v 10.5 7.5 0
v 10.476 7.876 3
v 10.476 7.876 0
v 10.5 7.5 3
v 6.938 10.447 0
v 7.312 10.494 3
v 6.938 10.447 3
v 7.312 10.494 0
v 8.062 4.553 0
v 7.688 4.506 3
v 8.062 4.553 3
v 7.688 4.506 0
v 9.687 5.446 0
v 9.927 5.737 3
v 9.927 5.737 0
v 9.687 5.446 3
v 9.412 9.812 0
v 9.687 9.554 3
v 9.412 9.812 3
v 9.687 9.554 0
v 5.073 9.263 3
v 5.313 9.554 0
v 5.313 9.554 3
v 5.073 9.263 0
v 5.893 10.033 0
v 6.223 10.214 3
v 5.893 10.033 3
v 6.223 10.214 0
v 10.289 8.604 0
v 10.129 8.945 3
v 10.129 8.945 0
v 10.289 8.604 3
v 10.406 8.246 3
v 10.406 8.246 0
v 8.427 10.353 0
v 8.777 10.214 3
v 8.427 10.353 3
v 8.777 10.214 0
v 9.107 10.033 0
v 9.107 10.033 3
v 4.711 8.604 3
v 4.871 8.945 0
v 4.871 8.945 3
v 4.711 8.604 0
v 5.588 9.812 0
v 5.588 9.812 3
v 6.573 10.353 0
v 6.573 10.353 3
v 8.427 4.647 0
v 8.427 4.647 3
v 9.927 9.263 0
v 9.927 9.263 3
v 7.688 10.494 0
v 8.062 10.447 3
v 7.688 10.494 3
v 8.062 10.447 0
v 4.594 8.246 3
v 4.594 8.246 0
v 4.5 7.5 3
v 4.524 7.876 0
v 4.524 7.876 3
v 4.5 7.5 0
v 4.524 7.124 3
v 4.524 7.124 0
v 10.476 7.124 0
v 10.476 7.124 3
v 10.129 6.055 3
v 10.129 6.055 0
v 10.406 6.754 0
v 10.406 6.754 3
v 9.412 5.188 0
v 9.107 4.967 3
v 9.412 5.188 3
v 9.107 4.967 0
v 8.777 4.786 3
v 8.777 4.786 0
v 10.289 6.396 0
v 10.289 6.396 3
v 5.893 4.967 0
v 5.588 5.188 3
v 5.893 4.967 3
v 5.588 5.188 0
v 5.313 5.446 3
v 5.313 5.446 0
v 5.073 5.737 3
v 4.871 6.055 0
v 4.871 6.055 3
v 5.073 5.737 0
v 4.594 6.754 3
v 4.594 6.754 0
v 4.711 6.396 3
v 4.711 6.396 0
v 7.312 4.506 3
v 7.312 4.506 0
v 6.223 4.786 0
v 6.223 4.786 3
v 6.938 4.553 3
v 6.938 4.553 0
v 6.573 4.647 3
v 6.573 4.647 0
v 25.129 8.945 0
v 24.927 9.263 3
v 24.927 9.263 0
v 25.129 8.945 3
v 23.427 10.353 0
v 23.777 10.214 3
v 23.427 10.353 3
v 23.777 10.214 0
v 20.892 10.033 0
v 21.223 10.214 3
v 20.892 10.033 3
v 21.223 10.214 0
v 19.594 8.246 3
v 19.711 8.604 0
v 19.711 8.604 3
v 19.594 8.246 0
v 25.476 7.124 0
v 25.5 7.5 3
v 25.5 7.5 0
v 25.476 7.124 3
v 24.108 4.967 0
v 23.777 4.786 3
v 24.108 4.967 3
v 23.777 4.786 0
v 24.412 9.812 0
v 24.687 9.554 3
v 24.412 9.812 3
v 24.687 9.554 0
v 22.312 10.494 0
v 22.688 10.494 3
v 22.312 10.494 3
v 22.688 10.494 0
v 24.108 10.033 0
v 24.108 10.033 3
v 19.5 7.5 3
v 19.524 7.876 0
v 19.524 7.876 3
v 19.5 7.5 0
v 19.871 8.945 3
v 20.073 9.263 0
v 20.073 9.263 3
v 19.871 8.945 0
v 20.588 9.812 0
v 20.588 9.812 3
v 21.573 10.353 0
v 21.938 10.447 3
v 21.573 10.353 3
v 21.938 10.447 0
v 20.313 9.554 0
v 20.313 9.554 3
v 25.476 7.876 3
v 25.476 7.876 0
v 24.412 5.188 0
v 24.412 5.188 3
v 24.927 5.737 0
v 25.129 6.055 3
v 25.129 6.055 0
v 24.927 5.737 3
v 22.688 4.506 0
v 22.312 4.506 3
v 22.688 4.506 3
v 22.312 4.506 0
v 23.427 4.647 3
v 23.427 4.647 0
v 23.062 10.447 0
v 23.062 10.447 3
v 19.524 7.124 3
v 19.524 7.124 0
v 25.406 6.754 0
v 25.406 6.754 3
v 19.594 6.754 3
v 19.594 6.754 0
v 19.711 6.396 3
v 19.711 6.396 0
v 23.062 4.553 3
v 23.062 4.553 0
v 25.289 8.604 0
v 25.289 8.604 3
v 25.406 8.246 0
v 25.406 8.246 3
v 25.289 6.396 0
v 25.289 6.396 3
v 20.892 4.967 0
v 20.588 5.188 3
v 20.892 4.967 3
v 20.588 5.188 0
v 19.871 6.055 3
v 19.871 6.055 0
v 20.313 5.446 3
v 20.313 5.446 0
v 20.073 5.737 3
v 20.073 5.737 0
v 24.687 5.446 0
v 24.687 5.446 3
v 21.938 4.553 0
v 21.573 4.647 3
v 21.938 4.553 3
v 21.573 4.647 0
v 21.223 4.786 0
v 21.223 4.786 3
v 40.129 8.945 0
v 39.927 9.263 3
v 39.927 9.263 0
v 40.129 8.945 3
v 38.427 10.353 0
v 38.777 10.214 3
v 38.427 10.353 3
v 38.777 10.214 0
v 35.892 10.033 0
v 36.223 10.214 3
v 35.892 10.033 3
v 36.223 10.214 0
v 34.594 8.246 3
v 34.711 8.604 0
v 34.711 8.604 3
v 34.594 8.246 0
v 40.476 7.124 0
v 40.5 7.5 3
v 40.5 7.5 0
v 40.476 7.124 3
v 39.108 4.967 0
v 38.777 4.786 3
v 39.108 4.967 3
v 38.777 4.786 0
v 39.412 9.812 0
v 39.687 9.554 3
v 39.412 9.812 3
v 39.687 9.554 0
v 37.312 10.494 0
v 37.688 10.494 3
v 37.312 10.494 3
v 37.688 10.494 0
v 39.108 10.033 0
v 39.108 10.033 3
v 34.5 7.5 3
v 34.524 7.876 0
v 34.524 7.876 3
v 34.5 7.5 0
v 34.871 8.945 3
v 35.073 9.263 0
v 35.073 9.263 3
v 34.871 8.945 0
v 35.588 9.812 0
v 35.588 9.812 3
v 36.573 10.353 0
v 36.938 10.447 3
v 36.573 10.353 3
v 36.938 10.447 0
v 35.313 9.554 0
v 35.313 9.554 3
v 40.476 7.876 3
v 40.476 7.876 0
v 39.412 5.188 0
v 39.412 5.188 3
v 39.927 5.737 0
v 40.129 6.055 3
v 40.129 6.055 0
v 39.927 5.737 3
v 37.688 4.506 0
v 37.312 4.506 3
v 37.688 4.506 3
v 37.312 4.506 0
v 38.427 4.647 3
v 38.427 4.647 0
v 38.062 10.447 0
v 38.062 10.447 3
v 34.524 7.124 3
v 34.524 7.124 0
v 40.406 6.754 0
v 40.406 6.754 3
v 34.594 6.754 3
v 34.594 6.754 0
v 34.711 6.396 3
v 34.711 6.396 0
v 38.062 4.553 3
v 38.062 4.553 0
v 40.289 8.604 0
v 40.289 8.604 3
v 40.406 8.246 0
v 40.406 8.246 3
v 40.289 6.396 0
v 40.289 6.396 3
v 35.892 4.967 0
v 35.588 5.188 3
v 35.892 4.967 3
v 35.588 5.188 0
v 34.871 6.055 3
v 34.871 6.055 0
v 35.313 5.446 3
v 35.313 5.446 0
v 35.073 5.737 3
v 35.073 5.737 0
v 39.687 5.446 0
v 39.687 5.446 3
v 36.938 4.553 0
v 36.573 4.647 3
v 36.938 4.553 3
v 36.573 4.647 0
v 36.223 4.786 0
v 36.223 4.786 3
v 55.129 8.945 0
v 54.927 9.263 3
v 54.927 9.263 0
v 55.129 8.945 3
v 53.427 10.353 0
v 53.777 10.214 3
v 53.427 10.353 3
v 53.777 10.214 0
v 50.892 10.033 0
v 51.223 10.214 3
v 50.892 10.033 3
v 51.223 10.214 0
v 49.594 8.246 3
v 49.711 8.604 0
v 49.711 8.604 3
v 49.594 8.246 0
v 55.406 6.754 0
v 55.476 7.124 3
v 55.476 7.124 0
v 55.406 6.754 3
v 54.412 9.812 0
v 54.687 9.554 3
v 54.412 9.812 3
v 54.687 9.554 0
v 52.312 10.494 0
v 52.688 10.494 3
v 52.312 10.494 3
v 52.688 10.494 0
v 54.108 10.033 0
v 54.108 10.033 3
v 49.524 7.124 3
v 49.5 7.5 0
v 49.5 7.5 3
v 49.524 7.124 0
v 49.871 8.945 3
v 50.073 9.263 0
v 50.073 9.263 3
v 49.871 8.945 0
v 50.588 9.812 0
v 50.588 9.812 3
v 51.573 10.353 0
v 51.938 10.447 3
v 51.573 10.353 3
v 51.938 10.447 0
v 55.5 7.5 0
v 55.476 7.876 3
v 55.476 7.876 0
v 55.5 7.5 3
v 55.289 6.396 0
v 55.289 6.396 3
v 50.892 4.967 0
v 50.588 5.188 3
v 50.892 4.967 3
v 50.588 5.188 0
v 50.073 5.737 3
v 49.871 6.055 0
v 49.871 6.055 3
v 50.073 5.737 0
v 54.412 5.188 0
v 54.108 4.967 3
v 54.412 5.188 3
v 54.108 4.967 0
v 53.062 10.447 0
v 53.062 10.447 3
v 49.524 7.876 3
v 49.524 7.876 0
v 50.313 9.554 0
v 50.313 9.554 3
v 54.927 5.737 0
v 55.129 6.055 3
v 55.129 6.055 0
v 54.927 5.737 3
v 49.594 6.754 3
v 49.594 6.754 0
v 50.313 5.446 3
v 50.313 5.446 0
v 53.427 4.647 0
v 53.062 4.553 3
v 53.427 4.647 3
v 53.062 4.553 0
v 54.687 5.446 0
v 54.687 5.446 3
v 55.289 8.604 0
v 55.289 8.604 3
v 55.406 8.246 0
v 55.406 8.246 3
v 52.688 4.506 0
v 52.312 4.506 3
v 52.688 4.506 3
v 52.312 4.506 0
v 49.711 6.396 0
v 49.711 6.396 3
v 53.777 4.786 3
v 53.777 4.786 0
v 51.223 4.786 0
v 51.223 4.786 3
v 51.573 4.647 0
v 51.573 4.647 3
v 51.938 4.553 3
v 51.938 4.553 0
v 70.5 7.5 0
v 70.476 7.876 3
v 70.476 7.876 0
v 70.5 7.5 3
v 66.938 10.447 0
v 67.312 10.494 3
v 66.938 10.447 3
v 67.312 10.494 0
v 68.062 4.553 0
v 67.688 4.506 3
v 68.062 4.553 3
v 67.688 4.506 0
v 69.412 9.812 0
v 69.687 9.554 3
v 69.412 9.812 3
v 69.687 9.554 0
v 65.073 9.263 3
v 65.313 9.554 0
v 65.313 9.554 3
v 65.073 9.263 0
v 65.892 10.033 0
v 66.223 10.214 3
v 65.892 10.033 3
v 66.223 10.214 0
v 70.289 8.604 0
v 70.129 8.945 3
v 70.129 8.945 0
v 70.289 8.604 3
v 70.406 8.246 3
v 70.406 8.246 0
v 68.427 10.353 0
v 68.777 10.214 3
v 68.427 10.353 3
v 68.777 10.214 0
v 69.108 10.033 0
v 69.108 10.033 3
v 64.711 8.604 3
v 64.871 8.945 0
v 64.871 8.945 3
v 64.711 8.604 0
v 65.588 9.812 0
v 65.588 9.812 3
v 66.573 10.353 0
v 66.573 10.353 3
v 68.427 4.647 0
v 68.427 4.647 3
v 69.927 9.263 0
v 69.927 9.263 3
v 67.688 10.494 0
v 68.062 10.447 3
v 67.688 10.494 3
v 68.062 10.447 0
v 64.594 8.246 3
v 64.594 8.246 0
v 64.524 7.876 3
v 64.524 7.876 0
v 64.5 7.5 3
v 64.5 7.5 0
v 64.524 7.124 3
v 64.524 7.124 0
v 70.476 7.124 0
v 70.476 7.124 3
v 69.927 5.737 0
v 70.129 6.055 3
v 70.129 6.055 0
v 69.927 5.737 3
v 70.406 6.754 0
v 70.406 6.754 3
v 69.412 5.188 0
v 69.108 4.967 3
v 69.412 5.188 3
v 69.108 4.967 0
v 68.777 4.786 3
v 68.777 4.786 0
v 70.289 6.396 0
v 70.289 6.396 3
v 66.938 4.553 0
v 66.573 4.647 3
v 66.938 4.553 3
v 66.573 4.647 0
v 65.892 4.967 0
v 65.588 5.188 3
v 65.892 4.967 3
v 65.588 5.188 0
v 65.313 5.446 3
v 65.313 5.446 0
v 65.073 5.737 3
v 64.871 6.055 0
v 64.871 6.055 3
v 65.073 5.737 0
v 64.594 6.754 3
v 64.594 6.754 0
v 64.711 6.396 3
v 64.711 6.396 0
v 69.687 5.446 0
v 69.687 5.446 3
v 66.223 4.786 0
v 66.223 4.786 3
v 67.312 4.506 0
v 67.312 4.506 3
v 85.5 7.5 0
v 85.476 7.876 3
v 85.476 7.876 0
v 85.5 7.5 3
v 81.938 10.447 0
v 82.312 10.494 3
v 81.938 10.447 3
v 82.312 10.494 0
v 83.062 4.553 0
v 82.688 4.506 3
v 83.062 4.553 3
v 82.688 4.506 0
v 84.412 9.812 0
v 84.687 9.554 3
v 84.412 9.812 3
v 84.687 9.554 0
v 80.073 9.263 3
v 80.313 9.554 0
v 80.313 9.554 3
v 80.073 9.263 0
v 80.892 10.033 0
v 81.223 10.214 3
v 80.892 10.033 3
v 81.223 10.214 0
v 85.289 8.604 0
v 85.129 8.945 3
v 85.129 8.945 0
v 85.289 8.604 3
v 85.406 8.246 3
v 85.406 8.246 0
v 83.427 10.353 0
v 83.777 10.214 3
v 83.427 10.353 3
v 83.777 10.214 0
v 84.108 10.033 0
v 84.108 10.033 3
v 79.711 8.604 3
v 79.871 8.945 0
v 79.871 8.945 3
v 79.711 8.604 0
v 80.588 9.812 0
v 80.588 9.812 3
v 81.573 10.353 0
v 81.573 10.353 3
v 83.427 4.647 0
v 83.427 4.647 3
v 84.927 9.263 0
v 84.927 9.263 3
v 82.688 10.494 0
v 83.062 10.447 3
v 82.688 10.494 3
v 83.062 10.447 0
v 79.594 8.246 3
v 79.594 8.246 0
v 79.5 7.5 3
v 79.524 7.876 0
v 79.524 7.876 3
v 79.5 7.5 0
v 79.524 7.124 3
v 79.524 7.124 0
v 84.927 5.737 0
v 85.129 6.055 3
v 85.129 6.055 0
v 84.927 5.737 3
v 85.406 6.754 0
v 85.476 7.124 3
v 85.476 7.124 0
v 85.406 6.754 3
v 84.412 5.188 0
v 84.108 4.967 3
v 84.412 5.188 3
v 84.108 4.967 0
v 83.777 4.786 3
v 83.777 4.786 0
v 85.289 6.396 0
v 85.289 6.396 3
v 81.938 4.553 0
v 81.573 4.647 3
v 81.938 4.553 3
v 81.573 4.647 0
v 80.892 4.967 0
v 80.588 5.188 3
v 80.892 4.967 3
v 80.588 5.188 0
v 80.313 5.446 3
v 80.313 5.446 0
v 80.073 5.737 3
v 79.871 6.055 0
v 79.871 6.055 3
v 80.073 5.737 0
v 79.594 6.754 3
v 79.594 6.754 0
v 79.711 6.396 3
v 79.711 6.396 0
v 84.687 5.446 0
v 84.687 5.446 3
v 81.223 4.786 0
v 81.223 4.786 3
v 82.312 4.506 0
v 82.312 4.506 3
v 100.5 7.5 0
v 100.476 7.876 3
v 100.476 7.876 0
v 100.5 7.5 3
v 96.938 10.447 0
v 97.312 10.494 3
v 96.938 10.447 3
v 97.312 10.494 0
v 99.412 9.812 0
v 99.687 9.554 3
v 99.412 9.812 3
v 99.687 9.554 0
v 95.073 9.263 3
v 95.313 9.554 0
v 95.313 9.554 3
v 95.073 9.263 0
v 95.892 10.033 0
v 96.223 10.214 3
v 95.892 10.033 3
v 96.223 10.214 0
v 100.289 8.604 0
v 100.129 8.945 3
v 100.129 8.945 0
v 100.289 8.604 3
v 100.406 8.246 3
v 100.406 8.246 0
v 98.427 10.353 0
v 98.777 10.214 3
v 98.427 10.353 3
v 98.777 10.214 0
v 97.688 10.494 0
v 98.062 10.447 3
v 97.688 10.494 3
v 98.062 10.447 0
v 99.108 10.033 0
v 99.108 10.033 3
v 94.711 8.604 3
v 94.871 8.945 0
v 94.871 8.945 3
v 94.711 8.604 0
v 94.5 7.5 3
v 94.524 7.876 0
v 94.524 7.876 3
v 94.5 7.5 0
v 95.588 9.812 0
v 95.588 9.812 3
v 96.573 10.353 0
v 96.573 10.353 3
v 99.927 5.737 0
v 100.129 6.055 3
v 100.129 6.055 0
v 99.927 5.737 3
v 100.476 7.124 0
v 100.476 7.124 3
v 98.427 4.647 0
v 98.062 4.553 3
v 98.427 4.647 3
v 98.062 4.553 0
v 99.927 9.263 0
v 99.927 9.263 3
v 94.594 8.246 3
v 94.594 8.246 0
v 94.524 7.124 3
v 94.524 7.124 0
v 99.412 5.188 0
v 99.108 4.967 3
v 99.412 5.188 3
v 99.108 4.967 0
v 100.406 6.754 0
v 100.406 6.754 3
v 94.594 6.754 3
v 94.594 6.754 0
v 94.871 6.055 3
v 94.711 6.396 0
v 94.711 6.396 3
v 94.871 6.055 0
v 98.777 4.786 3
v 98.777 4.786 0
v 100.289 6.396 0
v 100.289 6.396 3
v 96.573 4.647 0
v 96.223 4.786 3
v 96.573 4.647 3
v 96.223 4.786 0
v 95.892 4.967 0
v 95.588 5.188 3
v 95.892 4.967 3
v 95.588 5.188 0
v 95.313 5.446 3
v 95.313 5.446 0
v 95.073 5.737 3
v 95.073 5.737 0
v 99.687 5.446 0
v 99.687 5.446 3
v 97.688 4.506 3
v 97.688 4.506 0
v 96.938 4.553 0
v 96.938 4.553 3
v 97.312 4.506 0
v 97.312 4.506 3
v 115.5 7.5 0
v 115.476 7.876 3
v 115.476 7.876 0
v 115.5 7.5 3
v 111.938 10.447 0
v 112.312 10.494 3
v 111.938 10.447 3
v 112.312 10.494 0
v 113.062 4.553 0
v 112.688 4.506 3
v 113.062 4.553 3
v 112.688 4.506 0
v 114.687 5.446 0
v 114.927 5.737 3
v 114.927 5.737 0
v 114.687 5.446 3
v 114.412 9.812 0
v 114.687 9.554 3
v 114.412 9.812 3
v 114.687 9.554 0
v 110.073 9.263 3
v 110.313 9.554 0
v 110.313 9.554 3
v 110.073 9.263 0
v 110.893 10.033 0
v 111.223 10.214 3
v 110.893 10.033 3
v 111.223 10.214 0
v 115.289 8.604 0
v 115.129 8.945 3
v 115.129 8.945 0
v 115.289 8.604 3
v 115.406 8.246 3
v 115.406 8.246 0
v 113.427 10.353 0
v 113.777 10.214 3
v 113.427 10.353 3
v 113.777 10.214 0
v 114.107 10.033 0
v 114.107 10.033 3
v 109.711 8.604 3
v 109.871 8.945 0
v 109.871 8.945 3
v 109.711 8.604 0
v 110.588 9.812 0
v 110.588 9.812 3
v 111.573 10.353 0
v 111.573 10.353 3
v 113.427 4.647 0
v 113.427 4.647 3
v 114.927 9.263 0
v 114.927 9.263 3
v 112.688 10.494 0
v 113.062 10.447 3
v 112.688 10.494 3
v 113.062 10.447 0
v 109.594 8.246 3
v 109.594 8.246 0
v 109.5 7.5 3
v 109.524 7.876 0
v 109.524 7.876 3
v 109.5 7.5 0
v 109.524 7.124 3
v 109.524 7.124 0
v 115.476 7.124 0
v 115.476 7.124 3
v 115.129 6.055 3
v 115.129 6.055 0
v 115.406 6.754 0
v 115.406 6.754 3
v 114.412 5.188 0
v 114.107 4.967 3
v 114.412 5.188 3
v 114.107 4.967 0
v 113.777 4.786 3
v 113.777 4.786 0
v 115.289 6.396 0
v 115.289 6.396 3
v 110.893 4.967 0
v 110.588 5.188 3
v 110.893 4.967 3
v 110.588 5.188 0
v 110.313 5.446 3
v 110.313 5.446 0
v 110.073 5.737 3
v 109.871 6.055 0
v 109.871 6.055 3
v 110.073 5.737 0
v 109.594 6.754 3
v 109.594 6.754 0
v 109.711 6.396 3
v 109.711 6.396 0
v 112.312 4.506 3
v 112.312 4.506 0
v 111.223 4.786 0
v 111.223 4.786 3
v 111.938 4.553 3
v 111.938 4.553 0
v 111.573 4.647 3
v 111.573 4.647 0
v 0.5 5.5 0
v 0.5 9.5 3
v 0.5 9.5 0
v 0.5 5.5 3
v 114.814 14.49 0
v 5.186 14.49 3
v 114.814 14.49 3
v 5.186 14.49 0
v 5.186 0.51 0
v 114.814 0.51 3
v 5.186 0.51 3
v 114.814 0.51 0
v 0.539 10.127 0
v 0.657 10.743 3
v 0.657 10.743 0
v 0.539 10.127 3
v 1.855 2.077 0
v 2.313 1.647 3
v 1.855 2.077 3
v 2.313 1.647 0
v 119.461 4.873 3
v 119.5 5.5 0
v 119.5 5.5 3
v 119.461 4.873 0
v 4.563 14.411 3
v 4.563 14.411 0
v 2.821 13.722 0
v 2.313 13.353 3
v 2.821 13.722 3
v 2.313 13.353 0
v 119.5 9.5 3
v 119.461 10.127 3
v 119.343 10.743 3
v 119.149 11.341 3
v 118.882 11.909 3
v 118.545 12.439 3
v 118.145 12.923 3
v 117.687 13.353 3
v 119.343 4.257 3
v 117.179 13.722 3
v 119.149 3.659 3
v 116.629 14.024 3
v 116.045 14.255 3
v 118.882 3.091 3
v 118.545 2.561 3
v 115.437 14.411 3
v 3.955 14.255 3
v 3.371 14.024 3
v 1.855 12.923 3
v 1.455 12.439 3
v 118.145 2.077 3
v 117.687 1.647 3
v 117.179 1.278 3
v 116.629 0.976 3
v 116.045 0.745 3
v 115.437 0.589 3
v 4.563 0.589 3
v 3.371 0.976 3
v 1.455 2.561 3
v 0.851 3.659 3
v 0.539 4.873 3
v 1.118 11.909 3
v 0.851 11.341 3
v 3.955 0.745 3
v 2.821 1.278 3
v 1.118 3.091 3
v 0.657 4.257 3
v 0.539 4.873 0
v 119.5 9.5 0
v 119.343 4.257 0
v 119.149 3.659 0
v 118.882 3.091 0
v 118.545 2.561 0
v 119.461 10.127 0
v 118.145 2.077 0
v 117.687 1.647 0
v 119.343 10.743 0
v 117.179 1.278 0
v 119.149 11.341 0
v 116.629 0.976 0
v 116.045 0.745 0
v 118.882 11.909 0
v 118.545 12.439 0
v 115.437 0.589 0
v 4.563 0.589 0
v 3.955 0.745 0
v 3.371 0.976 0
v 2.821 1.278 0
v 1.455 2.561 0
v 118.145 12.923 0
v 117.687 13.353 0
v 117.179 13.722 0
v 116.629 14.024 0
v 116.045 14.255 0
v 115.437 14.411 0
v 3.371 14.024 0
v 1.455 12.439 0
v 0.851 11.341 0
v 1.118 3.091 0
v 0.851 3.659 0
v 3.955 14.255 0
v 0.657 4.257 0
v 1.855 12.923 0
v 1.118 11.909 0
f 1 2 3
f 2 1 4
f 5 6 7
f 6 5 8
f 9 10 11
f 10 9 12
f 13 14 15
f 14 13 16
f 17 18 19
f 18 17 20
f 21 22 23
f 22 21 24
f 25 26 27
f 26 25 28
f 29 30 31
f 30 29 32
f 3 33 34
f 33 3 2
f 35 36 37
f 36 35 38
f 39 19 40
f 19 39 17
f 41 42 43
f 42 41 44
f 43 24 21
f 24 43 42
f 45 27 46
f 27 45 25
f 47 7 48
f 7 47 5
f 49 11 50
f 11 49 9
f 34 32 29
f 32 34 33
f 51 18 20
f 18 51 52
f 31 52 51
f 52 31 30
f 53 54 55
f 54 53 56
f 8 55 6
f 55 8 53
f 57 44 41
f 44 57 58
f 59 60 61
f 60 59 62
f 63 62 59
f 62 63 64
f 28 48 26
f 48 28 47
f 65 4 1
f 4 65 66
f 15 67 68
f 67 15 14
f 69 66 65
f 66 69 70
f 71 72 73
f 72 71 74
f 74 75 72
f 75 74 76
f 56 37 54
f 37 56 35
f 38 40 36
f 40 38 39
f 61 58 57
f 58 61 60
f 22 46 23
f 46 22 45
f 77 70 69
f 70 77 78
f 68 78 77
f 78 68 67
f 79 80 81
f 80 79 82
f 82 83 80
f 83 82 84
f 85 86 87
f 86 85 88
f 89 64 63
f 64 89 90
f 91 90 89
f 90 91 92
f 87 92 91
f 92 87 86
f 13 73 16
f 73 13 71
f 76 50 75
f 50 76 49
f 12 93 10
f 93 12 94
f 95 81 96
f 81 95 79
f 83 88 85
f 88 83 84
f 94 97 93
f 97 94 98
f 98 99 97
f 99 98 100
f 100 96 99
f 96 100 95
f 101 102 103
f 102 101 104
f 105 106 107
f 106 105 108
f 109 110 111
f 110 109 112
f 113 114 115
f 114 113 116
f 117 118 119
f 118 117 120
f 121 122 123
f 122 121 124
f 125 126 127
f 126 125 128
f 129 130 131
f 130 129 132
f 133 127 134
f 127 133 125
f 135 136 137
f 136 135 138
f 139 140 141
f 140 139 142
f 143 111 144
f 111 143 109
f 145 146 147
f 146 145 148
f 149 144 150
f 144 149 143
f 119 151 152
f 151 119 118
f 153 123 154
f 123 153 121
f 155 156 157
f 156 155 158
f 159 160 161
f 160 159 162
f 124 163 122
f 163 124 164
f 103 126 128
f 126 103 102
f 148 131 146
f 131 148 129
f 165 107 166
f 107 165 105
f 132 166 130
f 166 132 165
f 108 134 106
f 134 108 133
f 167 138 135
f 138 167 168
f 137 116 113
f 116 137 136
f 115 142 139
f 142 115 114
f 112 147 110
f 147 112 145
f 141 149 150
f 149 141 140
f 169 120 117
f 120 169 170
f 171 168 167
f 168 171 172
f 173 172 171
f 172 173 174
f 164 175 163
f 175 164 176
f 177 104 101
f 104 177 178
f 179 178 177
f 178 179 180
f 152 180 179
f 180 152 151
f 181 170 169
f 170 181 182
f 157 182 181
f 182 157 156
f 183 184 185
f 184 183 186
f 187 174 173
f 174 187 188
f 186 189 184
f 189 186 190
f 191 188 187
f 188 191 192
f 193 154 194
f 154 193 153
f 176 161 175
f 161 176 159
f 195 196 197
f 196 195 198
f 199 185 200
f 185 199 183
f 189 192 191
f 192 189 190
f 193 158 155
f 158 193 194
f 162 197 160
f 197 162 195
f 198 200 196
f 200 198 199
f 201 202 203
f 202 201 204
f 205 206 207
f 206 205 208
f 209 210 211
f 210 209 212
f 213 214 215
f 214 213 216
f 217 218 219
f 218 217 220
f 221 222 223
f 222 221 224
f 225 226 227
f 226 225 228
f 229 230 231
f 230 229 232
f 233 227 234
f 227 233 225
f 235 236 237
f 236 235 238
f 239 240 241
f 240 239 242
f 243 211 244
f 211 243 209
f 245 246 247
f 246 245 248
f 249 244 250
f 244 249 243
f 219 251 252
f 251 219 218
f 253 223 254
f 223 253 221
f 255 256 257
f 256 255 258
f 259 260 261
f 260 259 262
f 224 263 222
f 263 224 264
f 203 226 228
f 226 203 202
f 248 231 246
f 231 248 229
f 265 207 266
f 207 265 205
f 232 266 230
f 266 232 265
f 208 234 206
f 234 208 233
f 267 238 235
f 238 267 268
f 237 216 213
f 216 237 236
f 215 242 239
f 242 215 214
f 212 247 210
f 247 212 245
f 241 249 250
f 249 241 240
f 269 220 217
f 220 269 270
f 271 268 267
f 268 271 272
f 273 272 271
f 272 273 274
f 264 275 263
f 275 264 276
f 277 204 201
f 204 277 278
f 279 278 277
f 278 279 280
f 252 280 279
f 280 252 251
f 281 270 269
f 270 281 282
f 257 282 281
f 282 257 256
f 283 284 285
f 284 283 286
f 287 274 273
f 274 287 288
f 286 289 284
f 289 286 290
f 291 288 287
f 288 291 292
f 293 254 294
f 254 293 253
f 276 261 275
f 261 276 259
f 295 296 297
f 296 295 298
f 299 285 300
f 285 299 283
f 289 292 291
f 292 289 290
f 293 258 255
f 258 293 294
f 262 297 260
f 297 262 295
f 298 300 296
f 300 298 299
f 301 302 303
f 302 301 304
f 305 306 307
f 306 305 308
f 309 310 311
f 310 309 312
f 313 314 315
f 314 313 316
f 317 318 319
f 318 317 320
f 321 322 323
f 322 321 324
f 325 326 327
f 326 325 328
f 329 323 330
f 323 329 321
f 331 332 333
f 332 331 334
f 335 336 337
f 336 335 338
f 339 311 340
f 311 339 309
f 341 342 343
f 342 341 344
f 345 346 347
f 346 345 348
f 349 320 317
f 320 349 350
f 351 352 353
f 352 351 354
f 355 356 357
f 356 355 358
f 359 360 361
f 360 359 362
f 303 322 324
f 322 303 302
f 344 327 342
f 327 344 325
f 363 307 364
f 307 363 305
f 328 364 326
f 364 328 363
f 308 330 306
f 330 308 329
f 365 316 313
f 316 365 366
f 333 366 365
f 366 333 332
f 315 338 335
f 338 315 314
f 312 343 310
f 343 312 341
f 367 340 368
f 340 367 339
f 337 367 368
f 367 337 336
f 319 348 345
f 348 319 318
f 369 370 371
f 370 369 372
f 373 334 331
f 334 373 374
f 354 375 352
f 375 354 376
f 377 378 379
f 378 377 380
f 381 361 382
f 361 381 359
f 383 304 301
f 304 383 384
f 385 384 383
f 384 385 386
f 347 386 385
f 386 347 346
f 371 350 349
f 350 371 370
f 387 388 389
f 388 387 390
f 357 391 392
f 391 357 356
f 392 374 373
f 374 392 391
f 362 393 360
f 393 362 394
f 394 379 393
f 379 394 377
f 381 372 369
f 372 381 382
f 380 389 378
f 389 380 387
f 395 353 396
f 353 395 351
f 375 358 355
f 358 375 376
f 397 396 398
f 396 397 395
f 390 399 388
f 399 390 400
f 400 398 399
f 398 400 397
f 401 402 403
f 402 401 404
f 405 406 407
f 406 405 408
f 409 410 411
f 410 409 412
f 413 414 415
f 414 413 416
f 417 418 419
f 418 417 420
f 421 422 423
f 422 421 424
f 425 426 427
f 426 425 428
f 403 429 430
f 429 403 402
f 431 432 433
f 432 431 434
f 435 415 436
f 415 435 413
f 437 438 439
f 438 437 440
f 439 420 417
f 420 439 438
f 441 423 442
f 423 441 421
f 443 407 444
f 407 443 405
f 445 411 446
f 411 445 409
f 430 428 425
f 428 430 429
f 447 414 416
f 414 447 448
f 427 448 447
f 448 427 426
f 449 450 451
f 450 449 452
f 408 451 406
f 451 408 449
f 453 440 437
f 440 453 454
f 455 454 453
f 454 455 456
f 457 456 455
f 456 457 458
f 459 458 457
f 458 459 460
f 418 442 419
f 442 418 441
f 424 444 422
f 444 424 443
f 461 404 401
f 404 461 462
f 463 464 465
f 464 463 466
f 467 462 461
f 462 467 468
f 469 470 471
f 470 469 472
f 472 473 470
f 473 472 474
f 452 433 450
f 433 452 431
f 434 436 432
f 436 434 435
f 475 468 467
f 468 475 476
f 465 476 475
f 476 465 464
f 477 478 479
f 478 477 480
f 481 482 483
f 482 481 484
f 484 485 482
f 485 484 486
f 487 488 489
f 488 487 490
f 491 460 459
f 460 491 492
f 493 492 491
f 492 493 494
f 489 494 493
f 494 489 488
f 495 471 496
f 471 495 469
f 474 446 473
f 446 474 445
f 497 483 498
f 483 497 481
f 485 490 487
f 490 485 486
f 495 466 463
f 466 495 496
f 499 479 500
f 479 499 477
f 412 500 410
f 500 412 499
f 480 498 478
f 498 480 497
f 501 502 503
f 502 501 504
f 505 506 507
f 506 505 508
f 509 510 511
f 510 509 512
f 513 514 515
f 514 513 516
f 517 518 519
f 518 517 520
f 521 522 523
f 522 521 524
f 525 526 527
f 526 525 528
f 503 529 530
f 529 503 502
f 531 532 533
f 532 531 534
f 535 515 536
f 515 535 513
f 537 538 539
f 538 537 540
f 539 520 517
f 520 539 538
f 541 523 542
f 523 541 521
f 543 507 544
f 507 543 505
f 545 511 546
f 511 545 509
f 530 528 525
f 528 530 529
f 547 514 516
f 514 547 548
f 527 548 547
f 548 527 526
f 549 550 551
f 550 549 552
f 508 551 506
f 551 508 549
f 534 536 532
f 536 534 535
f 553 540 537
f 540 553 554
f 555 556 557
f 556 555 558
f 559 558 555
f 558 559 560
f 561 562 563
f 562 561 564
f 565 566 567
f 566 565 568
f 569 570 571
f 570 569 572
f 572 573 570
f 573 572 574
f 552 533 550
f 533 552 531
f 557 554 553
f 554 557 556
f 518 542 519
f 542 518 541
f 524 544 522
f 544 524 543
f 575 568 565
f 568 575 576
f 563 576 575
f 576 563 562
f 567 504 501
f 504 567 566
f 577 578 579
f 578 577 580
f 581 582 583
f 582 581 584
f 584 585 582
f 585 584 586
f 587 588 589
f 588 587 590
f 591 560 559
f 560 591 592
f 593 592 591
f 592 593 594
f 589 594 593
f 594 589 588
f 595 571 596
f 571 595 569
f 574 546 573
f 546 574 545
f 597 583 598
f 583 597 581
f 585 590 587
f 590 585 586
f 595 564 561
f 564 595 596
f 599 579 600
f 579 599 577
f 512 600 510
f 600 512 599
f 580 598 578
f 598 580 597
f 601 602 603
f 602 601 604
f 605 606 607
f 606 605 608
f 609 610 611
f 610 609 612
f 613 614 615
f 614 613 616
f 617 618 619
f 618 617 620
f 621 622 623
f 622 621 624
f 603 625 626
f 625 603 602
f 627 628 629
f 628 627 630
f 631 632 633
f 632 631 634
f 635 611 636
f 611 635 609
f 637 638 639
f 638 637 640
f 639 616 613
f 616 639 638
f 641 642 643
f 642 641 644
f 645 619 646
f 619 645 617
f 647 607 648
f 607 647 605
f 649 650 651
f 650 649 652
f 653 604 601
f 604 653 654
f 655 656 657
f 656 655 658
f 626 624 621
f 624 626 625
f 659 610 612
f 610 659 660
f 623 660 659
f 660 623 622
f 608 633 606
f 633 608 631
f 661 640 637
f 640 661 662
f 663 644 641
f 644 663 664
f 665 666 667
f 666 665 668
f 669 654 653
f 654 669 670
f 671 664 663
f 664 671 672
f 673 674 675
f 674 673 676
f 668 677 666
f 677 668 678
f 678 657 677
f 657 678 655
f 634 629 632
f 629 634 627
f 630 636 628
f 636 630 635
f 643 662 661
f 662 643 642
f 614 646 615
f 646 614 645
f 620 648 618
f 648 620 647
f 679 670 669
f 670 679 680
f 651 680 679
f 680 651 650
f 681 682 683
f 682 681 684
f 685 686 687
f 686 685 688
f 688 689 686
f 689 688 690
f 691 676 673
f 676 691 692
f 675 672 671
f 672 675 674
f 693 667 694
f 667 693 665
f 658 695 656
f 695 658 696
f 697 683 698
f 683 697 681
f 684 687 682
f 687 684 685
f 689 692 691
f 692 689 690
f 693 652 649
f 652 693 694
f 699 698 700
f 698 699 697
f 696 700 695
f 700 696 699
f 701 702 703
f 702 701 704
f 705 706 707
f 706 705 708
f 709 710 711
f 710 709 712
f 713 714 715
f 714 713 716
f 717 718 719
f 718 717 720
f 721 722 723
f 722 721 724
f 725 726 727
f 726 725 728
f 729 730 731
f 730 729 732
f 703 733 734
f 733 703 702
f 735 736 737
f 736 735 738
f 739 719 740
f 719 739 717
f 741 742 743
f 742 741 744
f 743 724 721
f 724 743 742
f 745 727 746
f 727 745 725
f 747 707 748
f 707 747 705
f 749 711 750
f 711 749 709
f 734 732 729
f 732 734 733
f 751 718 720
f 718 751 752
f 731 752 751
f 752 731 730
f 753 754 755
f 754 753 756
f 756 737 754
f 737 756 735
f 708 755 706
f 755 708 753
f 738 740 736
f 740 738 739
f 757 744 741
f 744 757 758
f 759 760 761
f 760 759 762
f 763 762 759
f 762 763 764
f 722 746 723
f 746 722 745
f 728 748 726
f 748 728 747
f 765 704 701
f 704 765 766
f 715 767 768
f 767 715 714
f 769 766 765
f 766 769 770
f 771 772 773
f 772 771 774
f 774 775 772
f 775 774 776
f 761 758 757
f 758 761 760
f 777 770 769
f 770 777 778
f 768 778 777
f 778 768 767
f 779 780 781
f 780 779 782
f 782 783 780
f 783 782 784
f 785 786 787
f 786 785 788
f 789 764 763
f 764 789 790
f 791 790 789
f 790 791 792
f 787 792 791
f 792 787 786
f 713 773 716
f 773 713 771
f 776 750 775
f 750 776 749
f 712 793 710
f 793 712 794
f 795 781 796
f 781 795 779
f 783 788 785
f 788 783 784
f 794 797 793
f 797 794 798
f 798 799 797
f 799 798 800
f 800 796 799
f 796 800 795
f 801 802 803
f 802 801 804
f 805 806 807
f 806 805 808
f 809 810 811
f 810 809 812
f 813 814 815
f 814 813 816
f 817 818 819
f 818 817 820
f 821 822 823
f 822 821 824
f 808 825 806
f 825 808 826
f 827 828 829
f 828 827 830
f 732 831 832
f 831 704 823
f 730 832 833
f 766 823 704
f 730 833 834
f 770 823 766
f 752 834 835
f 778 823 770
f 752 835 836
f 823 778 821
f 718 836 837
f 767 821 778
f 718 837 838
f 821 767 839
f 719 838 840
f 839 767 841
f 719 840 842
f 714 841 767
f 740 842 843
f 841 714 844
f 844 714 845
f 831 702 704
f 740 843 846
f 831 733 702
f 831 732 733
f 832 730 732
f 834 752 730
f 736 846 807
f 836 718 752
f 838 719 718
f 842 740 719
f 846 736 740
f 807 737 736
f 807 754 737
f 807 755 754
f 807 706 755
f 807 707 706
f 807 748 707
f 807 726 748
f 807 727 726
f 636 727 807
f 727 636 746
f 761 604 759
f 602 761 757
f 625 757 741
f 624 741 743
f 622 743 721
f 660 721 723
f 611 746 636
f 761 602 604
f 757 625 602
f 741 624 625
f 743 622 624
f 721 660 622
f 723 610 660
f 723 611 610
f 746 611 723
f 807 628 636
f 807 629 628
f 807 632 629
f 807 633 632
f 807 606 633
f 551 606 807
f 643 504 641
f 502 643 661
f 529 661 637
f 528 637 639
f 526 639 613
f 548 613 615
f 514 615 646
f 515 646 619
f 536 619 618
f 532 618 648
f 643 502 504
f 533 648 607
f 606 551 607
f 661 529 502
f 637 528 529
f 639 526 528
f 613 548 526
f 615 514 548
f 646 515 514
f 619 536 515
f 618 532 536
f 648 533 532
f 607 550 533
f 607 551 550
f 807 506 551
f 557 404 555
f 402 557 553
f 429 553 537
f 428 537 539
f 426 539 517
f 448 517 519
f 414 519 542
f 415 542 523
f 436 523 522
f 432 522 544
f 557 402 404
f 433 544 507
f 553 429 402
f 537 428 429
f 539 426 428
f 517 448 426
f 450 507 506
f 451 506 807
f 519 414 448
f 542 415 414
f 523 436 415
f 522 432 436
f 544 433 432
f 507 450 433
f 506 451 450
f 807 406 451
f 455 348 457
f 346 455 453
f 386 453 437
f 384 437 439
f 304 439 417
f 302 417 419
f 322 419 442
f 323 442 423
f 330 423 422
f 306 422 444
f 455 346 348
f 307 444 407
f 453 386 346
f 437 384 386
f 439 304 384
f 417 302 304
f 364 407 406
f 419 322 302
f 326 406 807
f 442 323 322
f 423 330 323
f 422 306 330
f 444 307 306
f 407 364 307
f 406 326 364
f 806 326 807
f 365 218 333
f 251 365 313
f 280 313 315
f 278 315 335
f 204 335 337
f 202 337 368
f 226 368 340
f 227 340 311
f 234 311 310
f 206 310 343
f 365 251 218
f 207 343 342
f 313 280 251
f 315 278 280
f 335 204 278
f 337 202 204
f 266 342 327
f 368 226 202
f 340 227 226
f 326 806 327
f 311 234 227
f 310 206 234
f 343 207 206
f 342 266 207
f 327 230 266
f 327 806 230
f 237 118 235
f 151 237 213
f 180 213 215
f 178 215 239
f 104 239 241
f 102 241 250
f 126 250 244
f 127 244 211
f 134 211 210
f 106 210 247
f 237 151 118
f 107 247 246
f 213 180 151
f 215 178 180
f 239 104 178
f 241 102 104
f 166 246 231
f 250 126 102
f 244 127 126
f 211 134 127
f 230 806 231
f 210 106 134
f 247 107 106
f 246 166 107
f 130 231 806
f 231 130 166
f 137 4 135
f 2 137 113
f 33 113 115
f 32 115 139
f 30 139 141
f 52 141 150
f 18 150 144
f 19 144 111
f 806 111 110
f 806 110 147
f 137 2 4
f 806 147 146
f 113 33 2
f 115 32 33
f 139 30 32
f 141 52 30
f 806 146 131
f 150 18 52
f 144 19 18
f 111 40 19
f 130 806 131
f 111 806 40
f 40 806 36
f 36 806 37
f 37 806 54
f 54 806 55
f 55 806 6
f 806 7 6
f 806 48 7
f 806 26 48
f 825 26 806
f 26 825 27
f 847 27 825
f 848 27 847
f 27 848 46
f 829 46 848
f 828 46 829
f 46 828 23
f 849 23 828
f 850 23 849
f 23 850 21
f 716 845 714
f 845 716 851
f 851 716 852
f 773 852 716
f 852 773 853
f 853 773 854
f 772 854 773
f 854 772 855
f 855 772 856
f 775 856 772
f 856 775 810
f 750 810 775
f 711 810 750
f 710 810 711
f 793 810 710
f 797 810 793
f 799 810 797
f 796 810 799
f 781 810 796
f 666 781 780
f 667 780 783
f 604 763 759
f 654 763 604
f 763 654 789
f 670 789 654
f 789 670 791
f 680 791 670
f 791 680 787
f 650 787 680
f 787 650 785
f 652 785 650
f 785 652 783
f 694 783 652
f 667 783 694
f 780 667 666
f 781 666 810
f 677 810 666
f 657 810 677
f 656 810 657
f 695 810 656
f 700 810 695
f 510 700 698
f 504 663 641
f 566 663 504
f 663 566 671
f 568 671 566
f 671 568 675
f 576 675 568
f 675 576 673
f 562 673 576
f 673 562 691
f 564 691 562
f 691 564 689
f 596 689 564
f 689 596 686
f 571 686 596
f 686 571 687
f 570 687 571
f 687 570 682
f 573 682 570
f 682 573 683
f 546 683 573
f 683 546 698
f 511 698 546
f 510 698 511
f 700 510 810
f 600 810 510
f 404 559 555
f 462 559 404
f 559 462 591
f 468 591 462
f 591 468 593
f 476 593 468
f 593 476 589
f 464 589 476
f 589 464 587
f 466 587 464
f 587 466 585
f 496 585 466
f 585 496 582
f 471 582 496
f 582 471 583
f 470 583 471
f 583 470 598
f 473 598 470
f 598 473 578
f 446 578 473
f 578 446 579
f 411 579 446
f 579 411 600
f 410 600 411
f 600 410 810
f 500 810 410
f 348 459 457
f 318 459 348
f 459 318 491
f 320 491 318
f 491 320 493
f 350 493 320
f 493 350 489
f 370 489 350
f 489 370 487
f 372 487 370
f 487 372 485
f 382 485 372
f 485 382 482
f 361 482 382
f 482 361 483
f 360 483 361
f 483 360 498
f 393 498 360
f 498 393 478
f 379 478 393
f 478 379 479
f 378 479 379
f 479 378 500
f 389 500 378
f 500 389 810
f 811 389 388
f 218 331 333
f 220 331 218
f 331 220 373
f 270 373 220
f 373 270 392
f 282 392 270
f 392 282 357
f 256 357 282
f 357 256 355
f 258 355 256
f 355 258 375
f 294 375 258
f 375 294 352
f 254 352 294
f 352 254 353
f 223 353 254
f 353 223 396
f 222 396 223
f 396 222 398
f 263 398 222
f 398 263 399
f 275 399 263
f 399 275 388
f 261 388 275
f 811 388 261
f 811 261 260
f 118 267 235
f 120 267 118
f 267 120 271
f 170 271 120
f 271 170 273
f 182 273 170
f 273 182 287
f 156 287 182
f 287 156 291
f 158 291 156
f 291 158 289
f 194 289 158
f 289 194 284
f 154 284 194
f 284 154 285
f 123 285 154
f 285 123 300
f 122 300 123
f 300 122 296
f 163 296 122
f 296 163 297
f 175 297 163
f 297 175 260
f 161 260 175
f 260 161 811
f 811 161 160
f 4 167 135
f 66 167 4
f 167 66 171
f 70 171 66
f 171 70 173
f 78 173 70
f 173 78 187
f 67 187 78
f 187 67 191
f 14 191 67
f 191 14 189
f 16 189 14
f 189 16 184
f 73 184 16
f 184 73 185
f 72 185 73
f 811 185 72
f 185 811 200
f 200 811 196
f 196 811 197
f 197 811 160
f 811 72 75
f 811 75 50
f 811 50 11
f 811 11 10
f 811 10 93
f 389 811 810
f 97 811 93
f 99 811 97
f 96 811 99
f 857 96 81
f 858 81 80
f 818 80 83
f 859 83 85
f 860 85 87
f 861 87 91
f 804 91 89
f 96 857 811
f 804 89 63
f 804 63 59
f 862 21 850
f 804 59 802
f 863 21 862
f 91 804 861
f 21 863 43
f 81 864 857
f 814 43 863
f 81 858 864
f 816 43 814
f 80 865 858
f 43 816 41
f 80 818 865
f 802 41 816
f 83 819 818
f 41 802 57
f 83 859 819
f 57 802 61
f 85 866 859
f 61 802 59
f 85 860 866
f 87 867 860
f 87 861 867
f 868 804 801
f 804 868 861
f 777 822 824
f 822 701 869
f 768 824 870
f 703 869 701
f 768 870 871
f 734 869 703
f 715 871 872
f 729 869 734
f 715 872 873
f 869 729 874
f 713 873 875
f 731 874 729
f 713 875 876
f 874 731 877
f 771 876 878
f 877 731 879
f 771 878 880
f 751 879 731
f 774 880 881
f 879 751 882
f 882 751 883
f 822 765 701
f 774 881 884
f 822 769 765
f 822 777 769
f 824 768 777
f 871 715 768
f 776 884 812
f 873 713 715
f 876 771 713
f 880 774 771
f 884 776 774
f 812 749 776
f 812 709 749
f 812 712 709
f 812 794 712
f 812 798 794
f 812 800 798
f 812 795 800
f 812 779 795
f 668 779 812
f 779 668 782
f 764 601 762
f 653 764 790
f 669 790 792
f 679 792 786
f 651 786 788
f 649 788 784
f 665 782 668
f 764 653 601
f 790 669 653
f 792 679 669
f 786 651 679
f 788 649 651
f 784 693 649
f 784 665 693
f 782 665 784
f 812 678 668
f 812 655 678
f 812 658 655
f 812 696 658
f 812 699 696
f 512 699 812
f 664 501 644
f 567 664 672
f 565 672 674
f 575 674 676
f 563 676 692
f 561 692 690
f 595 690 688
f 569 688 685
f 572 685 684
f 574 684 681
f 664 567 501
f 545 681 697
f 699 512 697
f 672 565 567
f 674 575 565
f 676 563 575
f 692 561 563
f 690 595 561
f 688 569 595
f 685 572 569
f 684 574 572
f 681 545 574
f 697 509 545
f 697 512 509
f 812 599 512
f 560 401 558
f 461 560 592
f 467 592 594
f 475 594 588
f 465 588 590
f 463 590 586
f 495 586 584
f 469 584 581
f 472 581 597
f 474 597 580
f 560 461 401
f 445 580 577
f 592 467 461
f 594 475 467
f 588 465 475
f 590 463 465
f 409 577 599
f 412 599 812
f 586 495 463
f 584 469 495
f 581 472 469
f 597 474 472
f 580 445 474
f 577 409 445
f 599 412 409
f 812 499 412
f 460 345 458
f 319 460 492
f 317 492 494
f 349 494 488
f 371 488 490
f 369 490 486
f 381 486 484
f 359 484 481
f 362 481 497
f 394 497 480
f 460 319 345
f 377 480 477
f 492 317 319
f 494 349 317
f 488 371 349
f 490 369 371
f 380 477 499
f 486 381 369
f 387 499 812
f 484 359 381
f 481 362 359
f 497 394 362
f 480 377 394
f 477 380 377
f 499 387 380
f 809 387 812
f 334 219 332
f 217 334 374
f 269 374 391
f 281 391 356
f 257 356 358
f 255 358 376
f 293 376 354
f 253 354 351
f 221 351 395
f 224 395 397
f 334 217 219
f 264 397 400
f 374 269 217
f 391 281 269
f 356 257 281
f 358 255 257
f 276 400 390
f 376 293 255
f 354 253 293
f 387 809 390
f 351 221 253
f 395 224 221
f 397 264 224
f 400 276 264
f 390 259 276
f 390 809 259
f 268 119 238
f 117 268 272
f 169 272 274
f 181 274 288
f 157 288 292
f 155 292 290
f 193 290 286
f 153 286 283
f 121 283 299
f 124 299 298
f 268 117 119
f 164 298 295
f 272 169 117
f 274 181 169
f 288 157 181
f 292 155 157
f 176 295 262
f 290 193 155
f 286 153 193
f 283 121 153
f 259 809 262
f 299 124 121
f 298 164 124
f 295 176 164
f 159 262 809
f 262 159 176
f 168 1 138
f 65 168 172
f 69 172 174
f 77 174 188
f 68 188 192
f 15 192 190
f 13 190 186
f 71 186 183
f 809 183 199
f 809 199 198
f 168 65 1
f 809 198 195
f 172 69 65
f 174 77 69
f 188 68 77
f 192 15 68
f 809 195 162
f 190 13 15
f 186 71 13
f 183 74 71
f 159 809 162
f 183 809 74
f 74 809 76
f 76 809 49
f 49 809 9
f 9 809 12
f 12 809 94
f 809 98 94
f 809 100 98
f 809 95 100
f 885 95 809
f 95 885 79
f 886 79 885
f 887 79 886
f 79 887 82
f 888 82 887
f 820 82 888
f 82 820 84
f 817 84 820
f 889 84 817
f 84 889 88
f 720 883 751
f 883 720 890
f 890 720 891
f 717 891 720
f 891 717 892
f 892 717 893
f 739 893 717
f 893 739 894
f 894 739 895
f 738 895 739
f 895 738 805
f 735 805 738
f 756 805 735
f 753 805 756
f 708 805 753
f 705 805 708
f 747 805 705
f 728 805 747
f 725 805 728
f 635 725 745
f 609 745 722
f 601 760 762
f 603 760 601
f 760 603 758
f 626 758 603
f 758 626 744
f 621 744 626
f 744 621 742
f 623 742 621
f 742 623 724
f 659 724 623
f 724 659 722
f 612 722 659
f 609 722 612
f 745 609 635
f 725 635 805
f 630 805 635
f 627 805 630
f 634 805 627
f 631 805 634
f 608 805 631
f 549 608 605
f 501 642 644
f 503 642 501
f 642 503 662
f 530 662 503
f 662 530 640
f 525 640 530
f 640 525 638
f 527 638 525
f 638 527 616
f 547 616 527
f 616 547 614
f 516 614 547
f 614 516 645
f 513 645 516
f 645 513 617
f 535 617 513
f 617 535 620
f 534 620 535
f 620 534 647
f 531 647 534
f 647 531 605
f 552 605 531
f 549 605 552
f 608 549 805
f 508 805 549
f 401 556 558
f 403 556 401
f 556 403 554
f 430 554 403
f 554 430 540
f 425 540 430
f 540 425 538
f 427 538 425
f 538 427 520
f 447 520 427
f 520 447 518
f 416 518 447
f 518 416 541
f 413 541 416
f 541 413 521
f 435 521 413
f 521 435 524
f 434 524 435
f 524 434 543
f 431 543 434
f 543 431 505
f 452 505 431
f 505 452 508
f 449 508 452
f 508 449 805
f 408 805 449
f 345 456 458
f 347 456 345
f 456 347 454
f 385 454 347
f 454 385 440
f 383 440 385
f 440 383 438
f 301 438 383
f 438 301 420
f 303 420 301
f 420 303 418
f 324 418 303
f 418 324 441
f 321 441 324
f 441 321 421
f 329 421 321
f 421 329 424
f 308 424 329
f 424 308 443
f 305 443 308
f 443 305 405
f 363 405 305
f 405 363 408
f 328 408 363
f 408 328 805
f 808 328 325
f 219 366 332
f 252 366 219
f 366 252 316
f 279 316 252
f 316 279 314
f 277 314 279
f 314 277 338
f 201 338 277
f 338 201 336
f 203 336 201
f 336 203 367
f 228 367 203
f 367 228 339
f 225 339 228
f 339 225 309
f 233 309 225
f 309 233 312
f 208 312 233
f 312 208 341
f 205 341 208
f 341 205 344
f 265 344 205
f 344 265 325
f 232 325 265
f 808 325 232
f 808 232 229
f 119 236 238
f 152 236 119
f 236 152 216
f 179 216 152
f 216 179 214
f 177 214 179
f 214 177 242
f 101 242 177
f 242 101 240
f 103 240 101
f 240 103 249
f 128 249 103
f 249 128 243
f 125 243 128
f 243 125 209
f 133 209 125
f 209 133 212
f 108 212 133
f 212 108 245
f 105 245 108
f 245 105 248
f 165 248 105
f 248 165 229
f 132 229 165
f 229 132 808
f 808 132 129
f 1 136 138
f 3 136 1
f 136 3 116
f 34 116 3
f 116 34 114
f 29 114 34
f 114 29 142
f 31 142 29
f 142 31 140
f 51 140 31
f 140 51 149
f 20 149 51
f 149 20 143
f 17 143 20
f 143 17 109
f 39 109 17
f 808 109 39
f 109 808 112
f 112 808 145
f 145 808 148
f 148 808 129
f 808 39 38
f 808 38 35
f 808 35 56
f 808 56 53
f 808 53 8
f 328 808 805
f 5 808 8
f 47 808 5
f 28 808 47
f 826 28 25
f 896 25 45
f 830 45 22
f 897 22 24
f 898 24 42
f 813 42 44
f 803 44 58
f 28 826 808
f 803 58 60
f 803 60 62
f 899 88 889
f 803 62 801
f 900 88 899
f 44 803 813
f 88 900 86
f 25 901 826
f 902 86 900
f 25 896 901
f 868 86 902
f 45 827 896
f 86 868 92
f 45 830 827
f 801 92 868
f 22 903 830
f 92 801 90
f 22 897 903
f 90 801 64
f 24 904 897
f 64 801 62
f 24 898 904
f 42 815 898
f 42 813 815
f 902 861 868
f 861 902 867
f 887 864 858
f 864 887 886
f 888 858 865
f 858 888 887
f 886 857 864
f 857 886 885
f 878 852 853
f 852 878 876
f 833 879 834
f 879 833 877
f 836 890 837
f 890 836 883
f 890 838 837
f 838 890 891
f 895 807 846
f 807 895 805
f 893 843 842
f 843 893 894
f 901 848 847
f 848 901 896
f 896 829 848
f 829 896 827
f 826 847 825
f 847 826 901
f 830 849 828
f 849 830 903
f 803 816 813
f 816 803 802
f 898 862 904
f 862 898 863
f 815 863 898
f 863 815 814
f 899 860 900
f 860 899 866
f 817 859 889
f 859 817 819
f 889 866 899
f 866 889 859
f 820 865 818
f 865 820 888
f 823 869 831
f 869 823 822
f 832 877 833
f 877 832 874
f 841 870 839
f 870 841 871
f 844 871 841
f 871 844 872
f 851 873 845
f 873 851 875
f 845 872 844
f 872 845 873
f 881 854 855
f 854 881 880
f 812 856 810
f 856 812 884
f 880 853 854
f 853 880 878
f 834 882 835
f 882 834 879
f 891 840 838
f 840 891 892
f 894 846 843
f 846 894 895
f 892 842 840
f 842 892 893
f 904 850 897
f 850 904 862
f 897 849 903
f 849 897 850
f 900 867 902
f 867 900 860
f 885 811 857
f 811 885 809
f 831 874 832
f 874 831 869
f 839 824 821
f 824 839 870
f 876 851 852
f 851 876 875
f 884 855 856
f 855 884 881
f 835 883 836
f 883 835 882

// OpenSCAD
// Generated by SolidPython 1.1.3 on 2023-01-09 15:32:25
$fn = 50;


difference() {
	union() {
		translate(v = [60.0000000000, 7.5000000000, 0]) {
			rotate(a = [0, 0, 0]) {
				hull() {
					translate(v = [-54.5000000000, 2.0000000000, 0]) {
						rotate(a = [0, 0, 0]) {
							translate(v = [0, 0, 0]) {
								rotate(a = [0, 0, 0]) {
									cylinder(h = 3, r = 5);
								}
							}
						}
					}
					translate(v = [54.5000000000, 2.0000000000, 0]) {
						rotate(a = [0, 0, 0]) {
							translate(v = [0, 0, 0]) {
								rotate(a = [0, 0, 0]) {
									cylinder(h = 3, r = 5);
								}
							}
						}
					}
					translate(v = [-54.5000000000, -2.0000000000, 0]) {
						rotate(a = [0, 0, 0]) {
							translate(v = [0, 0, 0]) {
								rotate(a = [0, 0, 0]) {
									cylinder(h = 3, r = 5);
								}
							}
						}
					}
					translate(v = [54.5000000000, -2.0000000000, 0]) {
						rotate(a = [0, 0, 0]) {
							translate(v = [0, 0, 0]) {
								rotate(a = [0, 0, 0]) {
									cylinder(h = 3, r = 5);
								}
							}
						}
					}
				}
			}
		}
	}
	union() {
		translate(v = [7.5000000000, 7.5000000000, 0]) {
			rotate(a = [0, 0, 0]) {
				translate(v = [0, 0, -50]) {
					rotate(a = [0, 0, 0]) {
						cylinder(h = 100, r = 3.0000000000);
					}
				}
			}
		}
		translate(v = [22.5000000000, 7.5000000000, 0]) {
			rotate(a = [0, 0, 0]) {
				translate(v = [0, 0, -50]) {
					rotate(a = [0, 0, 0]) {
						cylinder(h = 100, r = 3.0000000000);
					}
				}
			}
		}
		translate(v = [37.5000000000, 7.5000000000, 0]) {
			rotate(a = [0, 0, 0]) {
				translate(v = [0, 0, -50]) {
					rotate(a = [0, 0, 0]) {
						cylinder(h = 100, r = 3.0000000000);
					}
				}
			}
		}
		translate(v = [52.5000000000, 7.5000000000, 0]) {
			rotate(a = [0, 0, 0]) {
				translate(v = [0, 0, -50]) {
					rotate(a = [0, 0, 0]) {
						cylinder(h = 100, r = 3.0000000000);
					}
				}
			}
		}
		translate(v = [67.5000000000, 7.5000000000, 0]) {
			rotate(a = [0, 0, 0]) {
				translate(v = [0, 0, -50]) {
					rotate(a = [0, 0, 0]) {
						cylinder(h = 100, r = 3.0000000000);
					}
				}
			}
		}
		translate(v = [82.5000000000, 7.5000000000, 0]) {
			rotate(a = [0, 0, 0]) {
				translate(v = [0, 0, -50]) {
					rotate(a = [0, 0, 0]) {
						cylinder(h = 100, r = 3.0000000000);
					}
				}
			}
		}
		translate(v = [97.5000000000, 7.5000000000, 0]) {
			rotate(a = [0, 0, 0]) {
				translate(v = [0, 0, -50]) {
					rotate(a = [0, 0, 0]) {
						cylinder(h = 100, r = 3.0000000000);
					}
				}
			}
		}
		translate(v = [112.5000000000, 7.5000000000, 0]) {
			rotate(a = [0, 0, 0]) {
				translate(v = [0, 0, -50]) {
					rotate(a = [0, 0, 0]) {
						cylinder(h = 100, r = 3.0000000000);
					}
				}
			}
		}
	}
}
/***********************************************
*********      SolidPython code:      **********
************************************************
 
from solid import *
import os
import subprocess

import oomB

import opsc_library_gen

mode = "laser"
#mode = "3d_print"

defined_objects = {}

radius_dict = {}
countersunk_dict = {}


def set_mode(m):
    global mode
    mode = m
    radius_dict['M6'] = 6.5/2
    radius_dict['M3'] = 3.3/2
    if mode == "laser":
        radius_dict['M6'] = 6/2
        radius_dict['M3'] = 3/2

    countersunk_dict['M3'] = {}
    countersunk_dict['M3']['little_rad'] = radius_dict['M3']
    countersunk_dict['M3']['big_rad'] = (5.5+0.6)/2
    if mode == "laser":
        countersunk_dict['M3']['big_rad'] = (4.75+0.6)/2
        countersunk_dict['M3']['little_rad'] = (4.75+0.6)/2

    countersunk_dict['M3']['height'] = 1.7


def opsc_make_object(filename, objects, save_type="none",resolution=50, layers = 1, tilediff = 200, mode="laser"):
    set_mode(mode)
    save_type = save_type.lower()
    os.makedirs(os.path.dirname(filename), exist_ok=True)
    final_object = opsc_get_object(objects)
    # Save the final object to the specified filename    
    scad_render_to_file(final_object, filename, file_header='$fn = %s;' % resolution, include_orig_code=True)
    if mode == "laser":
        filename_laser = filename.replace(".scad","-flat.scad")
        scad_render_to_file(getLaser(final_object, layers=layers, tilediff=tilediff), filename_laser, file_header='$fn = %s;' % resolution, include_orig_code=True)
        if save_type == "all":
            saveToAll(filename_laser)
        elif save_type == "dxf":
            saveToDxf(filename_laser)
    if save_type == "all":
        saveToAll(filename)
    elif save_type == "dxf":
        saveToDxf(filename)


def opsc_get_object(objects):
    # Create the solidpython objects
    positive_objects = [get_opsc_item(obj) for obj in objects if obj['type'] == 'positive']
    negative_objects = [get_opsc_item(obj) for obj in objects if obj['type'] == 'negative']
    # Union the positive objects
    positive_object = union()(*positive_objects)
    # Union the negative objects
    negative_object = union()(*negative_objects)
    # Create the final object by subtracting the negative objects from the positive objects
    return difference()(positive_object, negative_object)

def get_opsc_item(params):
    # A dictionary to map radius string values to numerical values
    #radius_dict = {'small': 5, 'medium': 10, 'large': 15}
    # An array of function names for basic shapes
    basic_shapes = ['cube', 'sphere', 'cylinder']
    
    # An array of function names for other shapes
    other_shapes = ['hole', 'slot', 'rounded_rectangle', 'countersunk']
    


    # Convert radius to r if present, and remove radius from the params dictionary
    if 'radius' in params:
        if isinstance(params['radius'], str):
            # Use the radius_dict to map the radius string value to a numerical value
            params['r'] = radius_dict[params['radius']]
        else:
            params['r'] = params['radius']
        del params['radius']
    

    # Check if the object type is a basic shape
    if params['shape'] in basic_shapes:
        # Remove shape and unexpected dictionary values
        allowed_keys = {'size', 'r', 'r1', 'r2', 'd', 'h', 'rw', 'rh', 'dw', 'dh'}
        shape_params = {k: v for k, v in params.items() if k in allowed_keys}

        # Call the corresponding function for the shape parameter, using ** notation to pass the shape_params dictionary as keyword arguments
        return get_opsc_transform(params,globals()[params['shape']](**shape_params))
    
    # If the object type is not a basic shape, check if it's a defined object or one of the other shapes
    elif params['shape'] in other_shapes:
        # Call the corresponding function for the shape parameter, passing the params dictionary as an argument
        p2 = copy.deepcopy(params)
        p2["pos"] = [0,0,0]
        return get_opsc_transform(params,globals()[params['shape']](p2))
    
    # If the object is not a basic shape or a defined object, try to import it from a .scad file
    else:
        obj = defined_objects[params['shape']]
        return get_opsc_transform(params,obj)

def get_opsc_transform(params, solid_obj):
    # Rotate the object based on the 'rot' field in the params dictionary, or the 'rotX', 'rotY', and 'rotZ' fields if 'rot' is not present
    rot = params.get('rot', [])
    if rot:
        rotX, rotY, rotZ = rot
    else:
        rotX = params.get('rotX', 0)
        rotY = params.get('rotY', 0)
        rotZ = params.get('rotZ', 0)
    solid_obj = rotate([rotX, rotY, rotZ])(solid_obj)

    # Translate the object based on the 'pos' field in the params dictionary, or the 'x', 'y', and 'z' fields if 'pos' is not present
    pos = params.get('pos', [])
    if pos:
        x, y, z = pos
    else:
        x = params.get('x', 0)
        y = params.get('y', 0)
        z = params.get('z', 0)
    solid_obj = translate([x, y, z])(solid_obj)
    return solid_obj


import random

def opsc_easy_array(type, shape, repeats, pos_start, shift_arr, **kwargs):
    for i in range(0,3):
        repeats.append(1)
        pos_start.append(0)
        shift_arr.append(0)
    return_objects = []

    for x in range(0,repeats[0]):
        for y in range(0,repeats[1]):
            for z in range(0,repeats[2]):
                return_objects.append(opsc_easy(type, shape, pos=[pos_start[0]+x*shift_arr[0],pos_start[1]+y*shift_arr[1],pos_start[2]+z*shift_arr[2]], **kwargs))
    return return_objects                



def opsc_easy(type, shape, **kwargs):
    obj = {
        'type': type,
        'shape': shape
    }
    for param in ['size', 'r', 'r1', 'r2', 'd', 'h', 'rw', 'rh', 'dw', 'dh', 'pos', 'x', 'y', 'z', 'rot', 'rotX', 'rotY', 'rotZ', "w"]:
        if param in kwargs:
            obj[param] = kwargs[param]
    return obj

def hole(params):
    p2 = copy.deepcopy(params)  
    # Check if the radius is a string and replace it with the corresponding value from the dictionary
    if isinstance(p2['r'], str):
        p2['r'] = radius_dict[p2['r']]
    
    # Set the height to 100 if not specified
    if 'h' not in p2:
        p2['h'] = 100
        p2["pos"] = [0,0,-50]
    p2["center"] = True
    # Create the cylinder object
    p2["shape"] = "cylinder"
    p2["type"] = "positive"

    return get_opsc_item(p2)

import copy

def countersunk(params):
    p2 = copy.deepcopy(params)
    counter_rad = p2['r']
    p2['r'] = radius_dict[p2['r']]
    hp = copy.deepcopy(p2)
    hp["type"] = "positive"
    hp["shape"] = "hole"
    del hp["rot"]
    hol = get_opsc_item(hp)
    
    cp = copy.deepcopy(p2)
    cp["h"] = countersunk_dict[counter_rad]["height"]
    cp["r2"] = countersunk_dict[counter_rad]["little_rad"]
    cp["r1"] = countersunk_dict[counter_rad]["big_rad"]
    del cp["r"]
    del cp["rot"]
    cp["type"] = "positive"
    cp["shape"] = "cylinder"
    cp["pos"] = [0,0,0]

    top = get_opsc_item(cp)
    return union()(hol,top)



def slot(params):  
    p2 = copy.deepcopy(params) 
    if isinstance(p2['r'], str):
        p2['r'] = radius_dict[p2['r']]
    p2["type"] = "positive"
    p2["shape"] = "hole"
    del p2["rot"]
    p2["pos"] = [0,0,0]
    left = copy.deepcopy(p2)
    right = copy.deepcopy(p2)
    left["pos"][0] = p2["w"] / 2 - p2["r"] 
    
    right["pos"][0] = -p2["w"] / 2 + p2["r"] 
    pass
    leftObj = get_opsc_item(left)
    rightObj = get_opsc_item(right)
    return hull()(leftObj, rightObj)

def rounded_rectangle(params):   
    p2 = copy.deepcopy(params) 
    p2["h"] = p2["size"][2]
    p2["pos"] = p2.get("pos", [0, 0, 0]) 
    p2["type"] = "positive"
    p2["shape"] = "hole"
    p2["pos"] = [0,0,0]
    
    if 'rot' in p2:
        del p2["rot"]   
    if 'r' not in p2:
        p2["r"] = 5 
    tl = copy.deepcopy(p2)
    tr = copy.deepcopy(p2)
    bl = copy.deepcopy(p2)
    br = copy.deepcopy(p2)
    tl["pos"][0] = -(p2["size"][0] - p2["r"]*2)/2
    tl["pos"][1] = (p2["size"][1] - p2["r"]*2)/2
    tr["pos"][0] = (p2["size"][0] - p2["r"]*2)/2
    tr["pos"][1] = (p2["size"][1] - p2["r"]*2)/2
    bl["pos"][0] = -(p2["size"][0] - p2["r"]*2)/2
    bl["pos"][1] = -(p2["size"][1] - p2["r"]*2)/2
    br["pos"][0] = (p2["size"][0] - p2["r"]*2)/2
    br["pos"][1] = -(p2["size"][1] - p2["r"]*2)/2
    del tl["size"]
    del tr["size"]
    del bl["size"]
    del br["size"]
    tlo = get_opsc_item(tl)
    tro = get_opsc_item(tr)
    blo = get_opsc_item(bl)
    bro = get_opsc_item(br)    
    return hull()(tlo, tro, blo, bro)



def import_scad_object(filename):
    # Import the .scad file and convert it to a solidpython object
    #filename = "parts"
    obj = import_scad(filename)
    return obj.main()
    


import os
import solid as solidpython

# A dictionary to store the defined objects


def load_scad_objects():
    opsc_library_gen.gen_library(defined_objects)

import random

def test(num_objects):
    objects = []
    for i in range(num_objects):
        # Choose a random shape
        #shape = random.choice(['cube', 'sphere', 'cylinder', 'hole', 'slot', "rounded_rectangle"])
        shape = random.choice(["rounded_rectangle"])

        # Choose a random type
        type = random.choice(['positive', 'negative'])
        
        # Create an empty object dictionary
        obj = {'shape': shape, 'type': type}
        
        # Set shape-specific parameters
        if obj['shape'] in ['cube']:
            obj['size'] =  [random.uniform(5, 15), random.uniform(5, 15), random.uniform(5, 15)]
        if obj['shape'] in ['rounded_rectangle']:
            obj['size'] =  [random.uniform(5, 15), random.uniform(5, 15), random.uniform(5, 15)]
            obj['r'] = random.uniform(0.5, 5)
        elif obj['shape'] == 'sphere':
            obj['r'] = random.uniform(5, 15)
        elif obj['shape'] in ['cylinder', 'hole']:
            obj['r'] = random.uniform(0.5, 5)
            obj['h'] = random.uniform(5, 15)
        elif obj['shape'] == 'slot':
            obj['r'] = random.uniform(0.5, 5)
            obj['h'] = random.uniform(5, 15)
            obj['w'] = random.uniform(5, 15)
        
        # Set a random position and rotation
        obj['pos'] = [random.uniform(-20, 20), random.uniform(-20, 20), random.uniform(-20, 20)]
        obj['rot'] = [random.uniform(-180, 180), random.uniform(-180, 180), random.uniform(-180, 180)]
        
        # Add the object to the list
        objects.append(obj)
    return objects

####### old file saving
def saveToAll(fileIn):
    saveToDxf(fileIn)
    saveToPng(fileIn)
    saveToStl(fileIn)
    saveToSvg(fileIn)

def saveToDxf(fileIn, fileOut="", copy_to_laser=True):
    if fileOut == "":
        fileOut = fileIn.replace(".scad",".dxf")
    saveToFile(fileIn, fileOut)


    
def saveToPng(fileIn, fileOut="",extra="--render"):
    if fileOut == "":
        fileOut = fileIn.replace(".scad",".png")
    saveToFile(fileIn, fileOut)

def saveToStl(fileIn, fileOut=""):
    if fileOut == "":
        fileOut = fileIn.replace(".scad",".stl")
    saveToFile(fileIn, fileOut)
    
def saveToSvg(fileIn, fileOut=""):
    if fileOut == "":
        fileOut = fileIn.replace(".scad",".svg")
    saveToFile(fileIn, fileOut)

def saveToFile(fileIn, fileOut,extra=""):
    #extra = extra + " --colorscheme Tomorrow"

    launchStr = 'openscad -o "' + fileOut + '"' + extra + ' "' + fileIn + '"'
    if ".png" in fileOut:
        launchStr = launchStr + " --render"
    print("            saveToFile launch string: " + launchStr)
    subprocess.run(launchStr)
    x=0

def getLaser(final_object,start=1.5,layers=1,thickness=3,tilediff=200):
        rv= []

        for x in range(layers):
            rv.append(translate([0,x*tilediff,0])(
                    projection()(
                        intersection()(translate([-500,-500,start+x*thickness])(cube(size=[1000,1000,0.1])),
                            final_object
                        )
                    )
            )
            )
            
        return union()(rv)

set_mode("laser")
load_scad_objects() 
 
************************************************/
